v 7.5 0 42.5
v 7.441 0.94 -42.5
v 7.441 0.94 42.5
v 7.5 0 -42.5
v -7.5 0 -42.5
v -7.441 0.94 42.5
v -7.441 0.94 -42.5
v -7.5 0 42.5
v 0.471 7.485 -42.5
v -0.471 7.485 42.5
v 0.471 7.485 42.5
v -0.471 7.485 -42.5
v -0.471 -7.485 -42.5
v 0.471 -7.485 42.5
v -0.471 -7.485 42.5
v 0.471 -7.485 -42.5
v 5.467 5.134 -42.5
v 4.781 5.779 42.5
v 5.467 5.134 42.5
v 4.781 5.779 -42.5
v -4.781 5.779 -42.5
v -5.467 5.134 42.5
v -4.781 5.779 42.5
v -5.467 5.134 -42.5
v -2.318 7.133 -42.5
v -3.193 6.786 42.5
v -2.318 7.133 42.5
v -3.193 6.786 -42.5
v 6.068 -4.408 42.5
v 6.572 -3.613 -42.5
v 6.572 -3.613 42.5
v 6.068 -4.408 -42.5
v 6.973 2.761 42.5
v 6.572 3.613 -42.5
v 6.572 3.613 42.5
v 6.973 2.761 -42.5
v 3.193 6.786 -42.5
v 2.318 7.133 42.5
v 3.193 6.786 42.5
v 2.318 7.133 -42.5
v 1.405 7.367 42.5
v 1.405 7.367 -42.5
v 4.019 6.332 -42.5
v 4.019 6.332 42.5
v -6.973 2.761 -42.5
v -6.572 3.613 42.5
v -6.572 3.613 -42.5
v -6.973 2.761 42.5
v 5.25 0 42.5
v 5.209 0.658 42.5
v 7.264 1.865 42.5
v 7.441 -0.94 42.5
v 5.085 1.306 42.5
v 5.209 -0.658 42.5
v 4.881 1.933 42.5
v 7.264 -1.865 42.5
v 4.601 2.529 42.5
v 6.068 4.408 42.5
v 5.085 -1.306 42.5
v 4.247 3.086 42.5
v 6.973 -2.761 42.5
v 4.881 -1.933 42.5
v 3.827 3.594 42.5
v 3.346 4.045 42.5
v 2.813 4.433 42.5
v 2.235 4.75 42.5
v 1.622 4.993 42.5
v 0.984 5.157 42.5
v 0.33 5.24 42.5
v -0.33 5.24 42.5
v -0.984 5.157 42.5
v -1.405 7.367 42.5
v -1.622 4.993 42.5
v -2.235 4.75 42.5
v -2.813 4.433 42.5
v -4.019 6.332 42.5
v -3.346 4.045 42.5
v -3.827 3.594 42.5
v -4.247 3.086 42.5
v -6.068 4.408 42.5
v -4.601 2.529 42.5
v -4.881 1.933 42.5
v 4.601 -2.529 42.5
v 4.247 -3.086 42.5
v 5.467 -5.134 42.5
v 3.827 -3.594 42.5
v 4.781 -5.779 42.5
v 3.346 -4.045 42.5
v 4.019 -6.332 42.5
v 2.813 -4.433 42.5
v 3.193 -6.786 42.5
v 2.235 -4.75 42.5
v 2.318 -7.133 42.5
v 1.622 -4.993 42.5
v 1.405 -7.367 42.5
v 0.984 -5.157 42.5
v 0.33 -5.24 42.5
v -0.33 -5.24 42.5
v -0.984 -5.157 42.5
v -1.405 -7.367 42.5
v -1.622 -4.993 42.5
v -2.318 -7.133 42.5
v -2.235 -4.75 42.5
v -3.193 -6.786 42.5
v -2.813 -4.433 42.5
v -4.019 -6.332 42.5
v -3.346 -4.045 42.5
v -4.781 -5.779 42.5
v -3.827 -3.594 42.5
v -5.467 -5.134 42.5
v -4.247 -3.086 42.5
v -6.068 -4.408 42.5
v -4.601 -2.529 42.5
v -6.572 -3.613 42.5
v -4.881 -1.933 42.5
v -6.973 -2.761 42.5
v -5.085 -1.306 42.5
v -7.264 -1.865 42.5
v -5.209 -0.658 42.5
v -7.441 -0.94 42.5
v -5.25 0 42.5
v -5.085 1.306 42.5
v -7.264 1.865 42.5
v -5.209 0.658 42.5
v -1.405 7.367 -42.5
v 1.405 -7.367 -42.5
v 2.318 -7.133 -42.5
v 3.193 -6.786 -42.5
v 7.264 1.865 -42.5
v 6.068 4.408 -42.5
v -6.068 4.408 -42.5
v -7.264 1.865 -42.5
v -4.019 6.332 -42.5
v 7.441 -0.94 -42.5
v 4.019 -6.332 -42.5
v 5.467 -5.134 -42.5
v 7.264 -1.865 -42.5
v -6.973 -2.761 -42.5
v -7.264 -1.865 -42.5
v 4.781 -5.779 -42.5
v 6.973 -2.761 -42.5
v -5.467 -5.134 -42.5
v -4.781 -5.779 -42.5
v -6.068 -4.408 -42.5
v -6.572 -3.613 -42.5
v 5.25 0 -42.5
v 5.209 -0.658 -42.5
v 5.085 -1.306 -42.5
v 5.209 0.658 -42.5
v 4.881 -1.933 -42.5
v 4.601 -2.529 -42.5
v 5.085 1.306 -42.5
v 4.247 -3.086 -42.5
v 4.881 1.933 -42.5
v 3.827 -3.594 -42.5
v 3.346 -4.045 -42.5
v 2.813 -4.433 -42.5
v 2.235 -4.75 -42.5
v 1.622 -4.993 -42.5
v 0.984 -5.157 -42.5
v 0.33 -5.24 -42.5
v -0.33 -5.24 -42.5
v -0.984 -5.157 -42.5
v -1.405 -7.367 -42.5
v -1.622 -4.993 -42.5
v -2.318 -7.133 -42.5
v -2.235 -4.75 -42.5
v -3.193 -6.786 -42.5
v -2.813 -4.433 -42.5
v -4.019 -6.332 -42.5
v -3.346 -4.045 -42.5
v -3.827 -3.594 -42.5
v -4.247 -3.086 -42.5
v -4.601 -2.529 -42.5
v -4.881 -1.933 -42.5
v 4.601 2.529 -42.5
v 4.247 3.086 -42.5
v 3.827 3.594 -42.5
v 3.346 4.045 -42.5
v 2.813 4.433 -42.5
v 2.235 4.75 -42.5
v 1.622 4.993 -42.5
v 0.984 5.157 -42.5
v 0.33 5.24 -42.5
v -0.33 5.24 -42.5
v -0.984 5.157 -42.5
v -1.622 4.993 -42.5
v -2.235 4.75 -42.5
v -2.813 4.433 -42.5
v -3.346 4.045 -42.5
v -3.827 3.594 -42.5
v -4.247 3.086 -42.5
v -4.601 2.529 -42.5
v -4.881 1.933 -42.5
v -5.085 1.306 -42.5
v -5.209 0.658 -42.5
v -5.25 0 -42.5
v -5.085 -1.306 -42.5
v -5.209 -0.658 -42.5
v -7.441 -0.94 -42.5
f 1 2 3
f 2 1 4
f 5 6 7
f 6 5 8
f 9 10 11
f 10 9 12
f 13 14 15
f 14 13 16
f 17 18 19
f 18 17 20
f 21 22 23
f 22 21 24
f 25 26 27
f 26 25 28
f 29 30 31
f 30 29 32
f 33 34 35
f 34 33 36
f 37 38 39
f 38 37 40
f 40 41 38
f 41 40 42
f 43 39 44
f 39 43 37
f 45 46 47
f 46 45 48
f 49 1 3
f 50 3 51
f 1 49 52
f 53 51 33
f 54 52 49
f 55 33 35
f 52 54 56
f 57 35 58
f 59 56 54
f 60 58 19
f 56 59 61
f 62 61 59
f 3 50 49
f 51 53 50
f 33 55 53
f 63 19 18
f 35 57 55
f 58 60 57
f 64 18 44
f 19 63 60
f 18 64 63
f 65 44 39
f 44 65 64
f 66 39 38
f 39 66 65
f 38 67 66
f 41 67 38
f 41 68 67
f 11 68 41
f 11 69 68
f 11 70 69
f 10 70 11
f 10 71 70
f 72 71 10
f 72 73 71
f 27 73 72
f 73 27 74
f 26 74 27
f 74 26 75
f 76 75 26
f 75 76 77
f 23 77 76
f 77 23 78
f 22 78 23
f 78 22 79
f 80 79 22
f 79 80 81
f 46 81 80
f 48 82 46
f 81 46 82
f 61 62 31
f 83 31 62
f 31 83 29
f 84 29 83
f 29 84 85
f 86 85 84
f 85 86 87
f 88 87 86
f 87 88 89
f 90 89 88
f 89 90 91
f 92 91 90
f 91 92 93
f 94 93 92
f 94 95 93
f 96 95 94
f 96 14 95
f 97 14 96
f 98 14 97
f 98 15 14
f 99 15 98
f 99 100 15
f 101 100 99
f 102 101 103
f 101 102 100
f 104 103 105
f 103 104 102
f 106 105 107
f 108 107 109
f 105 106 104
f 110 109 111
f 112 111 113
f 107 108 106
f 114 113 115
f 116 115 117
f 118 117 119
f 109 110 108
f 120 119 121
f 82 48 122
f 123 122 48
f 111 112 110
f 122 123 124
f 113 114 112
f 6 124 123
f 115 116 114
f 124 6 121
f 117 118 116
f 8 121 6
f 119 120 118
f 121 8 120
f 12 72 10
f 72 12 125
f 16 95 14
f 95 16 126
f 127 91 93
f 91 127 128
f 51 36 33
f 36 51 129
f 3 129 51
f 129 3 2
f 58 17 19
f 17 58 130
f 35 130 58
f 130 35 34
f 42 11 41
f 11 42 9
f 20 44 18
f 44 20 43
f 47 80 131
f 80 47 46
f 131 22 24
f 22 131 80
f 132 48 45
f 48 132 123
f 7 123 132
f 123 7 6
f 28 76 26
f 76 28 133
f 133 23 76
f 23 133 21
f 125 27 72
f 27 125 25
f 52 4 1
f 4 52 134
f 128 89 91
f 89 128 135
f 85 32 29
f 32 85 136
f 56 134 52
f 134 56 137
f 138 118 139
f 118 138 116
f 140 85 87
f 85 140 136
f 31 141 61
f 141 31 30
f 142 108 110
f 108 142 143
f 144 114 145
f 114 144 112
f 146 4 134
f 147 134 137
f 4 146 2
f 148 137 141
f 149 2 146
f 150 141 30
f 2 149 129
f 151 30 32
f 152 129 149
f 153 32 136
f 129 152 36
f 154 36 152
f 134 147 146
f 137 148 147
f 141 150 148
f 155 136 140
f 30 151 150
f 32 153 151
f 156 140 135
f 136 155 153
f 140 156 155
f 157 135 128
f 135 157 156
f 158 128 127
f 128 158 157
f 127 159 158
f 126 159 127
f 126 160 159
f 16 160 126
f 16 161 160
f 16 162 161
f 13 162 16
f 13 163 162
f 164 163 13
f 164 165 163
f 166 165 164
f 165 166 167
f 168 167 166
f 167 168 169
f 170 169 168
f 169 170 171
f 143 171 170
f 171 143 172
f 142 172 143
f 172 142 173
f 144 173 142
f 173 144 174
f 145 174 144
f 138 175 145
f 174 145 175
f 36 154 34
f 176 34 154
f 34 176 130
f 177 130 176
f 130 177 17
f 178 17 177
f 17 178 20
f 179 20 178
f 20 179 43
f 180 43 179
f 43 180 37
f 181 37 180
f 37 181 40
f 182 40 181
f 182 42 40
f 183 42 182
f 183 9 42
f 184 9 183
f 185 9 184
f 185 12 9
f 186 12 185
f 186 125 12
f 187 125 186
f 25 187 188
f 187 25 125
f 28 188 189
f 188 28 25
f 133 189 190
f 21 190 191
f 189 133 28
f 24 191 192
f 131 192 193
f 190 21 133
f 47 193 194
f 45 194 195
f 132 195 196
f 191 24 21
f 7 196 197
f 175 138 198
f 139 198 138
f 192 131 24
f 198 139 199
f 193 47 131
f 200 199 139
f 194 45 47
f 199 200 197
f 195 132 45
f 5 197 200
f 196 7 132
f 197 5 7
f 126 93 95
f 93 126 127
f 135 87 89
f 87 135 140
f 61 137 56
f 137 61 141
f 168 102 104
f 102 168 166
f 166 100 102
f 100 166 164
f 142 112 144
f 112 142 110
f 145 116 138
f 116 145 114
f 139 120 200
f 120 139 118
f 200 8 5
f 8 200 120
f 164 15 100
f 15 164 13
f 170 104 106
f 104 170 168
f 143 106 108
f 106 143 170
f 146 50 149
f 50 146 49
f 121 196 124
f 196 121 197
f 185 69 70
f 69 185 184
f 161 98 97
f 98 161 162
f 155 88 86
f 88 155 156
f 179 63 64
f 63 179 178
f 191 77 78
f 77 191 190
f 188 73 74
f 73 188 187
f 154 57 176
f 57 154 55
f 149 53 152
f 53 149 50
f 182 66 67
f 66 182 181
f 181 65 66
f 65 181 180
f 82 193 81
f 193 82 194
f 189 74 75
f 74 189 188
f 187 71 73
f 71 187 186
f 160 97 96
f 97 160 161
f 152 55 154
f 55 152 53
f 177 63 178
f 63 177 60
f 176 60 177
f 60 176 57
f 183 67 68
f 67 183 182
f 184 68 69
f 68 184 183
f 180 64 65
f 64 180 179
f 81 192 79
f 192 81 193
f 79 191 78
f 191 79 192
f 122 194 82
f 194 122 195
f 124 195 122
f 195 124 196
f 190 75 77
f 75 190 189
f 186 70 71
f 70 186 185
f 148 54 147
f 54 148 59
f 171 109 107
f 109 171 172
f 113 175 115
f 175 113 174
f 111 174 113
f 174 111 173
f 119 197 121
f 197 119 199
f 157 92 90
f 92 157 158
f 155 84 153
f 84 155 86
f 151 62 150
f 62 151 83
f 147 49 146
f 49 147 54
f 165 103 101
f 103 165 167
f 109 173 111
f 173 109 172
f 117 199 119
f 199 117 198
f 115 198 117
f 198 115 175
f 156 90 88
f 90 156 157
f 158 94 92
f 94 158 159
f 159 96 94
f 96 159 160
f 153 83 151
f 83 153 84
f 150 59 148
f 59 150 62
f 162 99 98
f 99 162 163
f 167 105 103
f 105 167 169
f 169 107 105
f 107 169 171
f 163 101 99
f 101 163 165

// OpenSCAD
$fn = 50;


difference() {
	union() {
		translate(v = [0, 0, -42.5000000000]) {
			cylinder(h = 85, r = 7.5000000000);
		}
	}
	union() {
		translate(v = [0, 0, -100.0000000000]) {
			cylinder(h = 200, r = 5.2500000000);
		}
	}
}
